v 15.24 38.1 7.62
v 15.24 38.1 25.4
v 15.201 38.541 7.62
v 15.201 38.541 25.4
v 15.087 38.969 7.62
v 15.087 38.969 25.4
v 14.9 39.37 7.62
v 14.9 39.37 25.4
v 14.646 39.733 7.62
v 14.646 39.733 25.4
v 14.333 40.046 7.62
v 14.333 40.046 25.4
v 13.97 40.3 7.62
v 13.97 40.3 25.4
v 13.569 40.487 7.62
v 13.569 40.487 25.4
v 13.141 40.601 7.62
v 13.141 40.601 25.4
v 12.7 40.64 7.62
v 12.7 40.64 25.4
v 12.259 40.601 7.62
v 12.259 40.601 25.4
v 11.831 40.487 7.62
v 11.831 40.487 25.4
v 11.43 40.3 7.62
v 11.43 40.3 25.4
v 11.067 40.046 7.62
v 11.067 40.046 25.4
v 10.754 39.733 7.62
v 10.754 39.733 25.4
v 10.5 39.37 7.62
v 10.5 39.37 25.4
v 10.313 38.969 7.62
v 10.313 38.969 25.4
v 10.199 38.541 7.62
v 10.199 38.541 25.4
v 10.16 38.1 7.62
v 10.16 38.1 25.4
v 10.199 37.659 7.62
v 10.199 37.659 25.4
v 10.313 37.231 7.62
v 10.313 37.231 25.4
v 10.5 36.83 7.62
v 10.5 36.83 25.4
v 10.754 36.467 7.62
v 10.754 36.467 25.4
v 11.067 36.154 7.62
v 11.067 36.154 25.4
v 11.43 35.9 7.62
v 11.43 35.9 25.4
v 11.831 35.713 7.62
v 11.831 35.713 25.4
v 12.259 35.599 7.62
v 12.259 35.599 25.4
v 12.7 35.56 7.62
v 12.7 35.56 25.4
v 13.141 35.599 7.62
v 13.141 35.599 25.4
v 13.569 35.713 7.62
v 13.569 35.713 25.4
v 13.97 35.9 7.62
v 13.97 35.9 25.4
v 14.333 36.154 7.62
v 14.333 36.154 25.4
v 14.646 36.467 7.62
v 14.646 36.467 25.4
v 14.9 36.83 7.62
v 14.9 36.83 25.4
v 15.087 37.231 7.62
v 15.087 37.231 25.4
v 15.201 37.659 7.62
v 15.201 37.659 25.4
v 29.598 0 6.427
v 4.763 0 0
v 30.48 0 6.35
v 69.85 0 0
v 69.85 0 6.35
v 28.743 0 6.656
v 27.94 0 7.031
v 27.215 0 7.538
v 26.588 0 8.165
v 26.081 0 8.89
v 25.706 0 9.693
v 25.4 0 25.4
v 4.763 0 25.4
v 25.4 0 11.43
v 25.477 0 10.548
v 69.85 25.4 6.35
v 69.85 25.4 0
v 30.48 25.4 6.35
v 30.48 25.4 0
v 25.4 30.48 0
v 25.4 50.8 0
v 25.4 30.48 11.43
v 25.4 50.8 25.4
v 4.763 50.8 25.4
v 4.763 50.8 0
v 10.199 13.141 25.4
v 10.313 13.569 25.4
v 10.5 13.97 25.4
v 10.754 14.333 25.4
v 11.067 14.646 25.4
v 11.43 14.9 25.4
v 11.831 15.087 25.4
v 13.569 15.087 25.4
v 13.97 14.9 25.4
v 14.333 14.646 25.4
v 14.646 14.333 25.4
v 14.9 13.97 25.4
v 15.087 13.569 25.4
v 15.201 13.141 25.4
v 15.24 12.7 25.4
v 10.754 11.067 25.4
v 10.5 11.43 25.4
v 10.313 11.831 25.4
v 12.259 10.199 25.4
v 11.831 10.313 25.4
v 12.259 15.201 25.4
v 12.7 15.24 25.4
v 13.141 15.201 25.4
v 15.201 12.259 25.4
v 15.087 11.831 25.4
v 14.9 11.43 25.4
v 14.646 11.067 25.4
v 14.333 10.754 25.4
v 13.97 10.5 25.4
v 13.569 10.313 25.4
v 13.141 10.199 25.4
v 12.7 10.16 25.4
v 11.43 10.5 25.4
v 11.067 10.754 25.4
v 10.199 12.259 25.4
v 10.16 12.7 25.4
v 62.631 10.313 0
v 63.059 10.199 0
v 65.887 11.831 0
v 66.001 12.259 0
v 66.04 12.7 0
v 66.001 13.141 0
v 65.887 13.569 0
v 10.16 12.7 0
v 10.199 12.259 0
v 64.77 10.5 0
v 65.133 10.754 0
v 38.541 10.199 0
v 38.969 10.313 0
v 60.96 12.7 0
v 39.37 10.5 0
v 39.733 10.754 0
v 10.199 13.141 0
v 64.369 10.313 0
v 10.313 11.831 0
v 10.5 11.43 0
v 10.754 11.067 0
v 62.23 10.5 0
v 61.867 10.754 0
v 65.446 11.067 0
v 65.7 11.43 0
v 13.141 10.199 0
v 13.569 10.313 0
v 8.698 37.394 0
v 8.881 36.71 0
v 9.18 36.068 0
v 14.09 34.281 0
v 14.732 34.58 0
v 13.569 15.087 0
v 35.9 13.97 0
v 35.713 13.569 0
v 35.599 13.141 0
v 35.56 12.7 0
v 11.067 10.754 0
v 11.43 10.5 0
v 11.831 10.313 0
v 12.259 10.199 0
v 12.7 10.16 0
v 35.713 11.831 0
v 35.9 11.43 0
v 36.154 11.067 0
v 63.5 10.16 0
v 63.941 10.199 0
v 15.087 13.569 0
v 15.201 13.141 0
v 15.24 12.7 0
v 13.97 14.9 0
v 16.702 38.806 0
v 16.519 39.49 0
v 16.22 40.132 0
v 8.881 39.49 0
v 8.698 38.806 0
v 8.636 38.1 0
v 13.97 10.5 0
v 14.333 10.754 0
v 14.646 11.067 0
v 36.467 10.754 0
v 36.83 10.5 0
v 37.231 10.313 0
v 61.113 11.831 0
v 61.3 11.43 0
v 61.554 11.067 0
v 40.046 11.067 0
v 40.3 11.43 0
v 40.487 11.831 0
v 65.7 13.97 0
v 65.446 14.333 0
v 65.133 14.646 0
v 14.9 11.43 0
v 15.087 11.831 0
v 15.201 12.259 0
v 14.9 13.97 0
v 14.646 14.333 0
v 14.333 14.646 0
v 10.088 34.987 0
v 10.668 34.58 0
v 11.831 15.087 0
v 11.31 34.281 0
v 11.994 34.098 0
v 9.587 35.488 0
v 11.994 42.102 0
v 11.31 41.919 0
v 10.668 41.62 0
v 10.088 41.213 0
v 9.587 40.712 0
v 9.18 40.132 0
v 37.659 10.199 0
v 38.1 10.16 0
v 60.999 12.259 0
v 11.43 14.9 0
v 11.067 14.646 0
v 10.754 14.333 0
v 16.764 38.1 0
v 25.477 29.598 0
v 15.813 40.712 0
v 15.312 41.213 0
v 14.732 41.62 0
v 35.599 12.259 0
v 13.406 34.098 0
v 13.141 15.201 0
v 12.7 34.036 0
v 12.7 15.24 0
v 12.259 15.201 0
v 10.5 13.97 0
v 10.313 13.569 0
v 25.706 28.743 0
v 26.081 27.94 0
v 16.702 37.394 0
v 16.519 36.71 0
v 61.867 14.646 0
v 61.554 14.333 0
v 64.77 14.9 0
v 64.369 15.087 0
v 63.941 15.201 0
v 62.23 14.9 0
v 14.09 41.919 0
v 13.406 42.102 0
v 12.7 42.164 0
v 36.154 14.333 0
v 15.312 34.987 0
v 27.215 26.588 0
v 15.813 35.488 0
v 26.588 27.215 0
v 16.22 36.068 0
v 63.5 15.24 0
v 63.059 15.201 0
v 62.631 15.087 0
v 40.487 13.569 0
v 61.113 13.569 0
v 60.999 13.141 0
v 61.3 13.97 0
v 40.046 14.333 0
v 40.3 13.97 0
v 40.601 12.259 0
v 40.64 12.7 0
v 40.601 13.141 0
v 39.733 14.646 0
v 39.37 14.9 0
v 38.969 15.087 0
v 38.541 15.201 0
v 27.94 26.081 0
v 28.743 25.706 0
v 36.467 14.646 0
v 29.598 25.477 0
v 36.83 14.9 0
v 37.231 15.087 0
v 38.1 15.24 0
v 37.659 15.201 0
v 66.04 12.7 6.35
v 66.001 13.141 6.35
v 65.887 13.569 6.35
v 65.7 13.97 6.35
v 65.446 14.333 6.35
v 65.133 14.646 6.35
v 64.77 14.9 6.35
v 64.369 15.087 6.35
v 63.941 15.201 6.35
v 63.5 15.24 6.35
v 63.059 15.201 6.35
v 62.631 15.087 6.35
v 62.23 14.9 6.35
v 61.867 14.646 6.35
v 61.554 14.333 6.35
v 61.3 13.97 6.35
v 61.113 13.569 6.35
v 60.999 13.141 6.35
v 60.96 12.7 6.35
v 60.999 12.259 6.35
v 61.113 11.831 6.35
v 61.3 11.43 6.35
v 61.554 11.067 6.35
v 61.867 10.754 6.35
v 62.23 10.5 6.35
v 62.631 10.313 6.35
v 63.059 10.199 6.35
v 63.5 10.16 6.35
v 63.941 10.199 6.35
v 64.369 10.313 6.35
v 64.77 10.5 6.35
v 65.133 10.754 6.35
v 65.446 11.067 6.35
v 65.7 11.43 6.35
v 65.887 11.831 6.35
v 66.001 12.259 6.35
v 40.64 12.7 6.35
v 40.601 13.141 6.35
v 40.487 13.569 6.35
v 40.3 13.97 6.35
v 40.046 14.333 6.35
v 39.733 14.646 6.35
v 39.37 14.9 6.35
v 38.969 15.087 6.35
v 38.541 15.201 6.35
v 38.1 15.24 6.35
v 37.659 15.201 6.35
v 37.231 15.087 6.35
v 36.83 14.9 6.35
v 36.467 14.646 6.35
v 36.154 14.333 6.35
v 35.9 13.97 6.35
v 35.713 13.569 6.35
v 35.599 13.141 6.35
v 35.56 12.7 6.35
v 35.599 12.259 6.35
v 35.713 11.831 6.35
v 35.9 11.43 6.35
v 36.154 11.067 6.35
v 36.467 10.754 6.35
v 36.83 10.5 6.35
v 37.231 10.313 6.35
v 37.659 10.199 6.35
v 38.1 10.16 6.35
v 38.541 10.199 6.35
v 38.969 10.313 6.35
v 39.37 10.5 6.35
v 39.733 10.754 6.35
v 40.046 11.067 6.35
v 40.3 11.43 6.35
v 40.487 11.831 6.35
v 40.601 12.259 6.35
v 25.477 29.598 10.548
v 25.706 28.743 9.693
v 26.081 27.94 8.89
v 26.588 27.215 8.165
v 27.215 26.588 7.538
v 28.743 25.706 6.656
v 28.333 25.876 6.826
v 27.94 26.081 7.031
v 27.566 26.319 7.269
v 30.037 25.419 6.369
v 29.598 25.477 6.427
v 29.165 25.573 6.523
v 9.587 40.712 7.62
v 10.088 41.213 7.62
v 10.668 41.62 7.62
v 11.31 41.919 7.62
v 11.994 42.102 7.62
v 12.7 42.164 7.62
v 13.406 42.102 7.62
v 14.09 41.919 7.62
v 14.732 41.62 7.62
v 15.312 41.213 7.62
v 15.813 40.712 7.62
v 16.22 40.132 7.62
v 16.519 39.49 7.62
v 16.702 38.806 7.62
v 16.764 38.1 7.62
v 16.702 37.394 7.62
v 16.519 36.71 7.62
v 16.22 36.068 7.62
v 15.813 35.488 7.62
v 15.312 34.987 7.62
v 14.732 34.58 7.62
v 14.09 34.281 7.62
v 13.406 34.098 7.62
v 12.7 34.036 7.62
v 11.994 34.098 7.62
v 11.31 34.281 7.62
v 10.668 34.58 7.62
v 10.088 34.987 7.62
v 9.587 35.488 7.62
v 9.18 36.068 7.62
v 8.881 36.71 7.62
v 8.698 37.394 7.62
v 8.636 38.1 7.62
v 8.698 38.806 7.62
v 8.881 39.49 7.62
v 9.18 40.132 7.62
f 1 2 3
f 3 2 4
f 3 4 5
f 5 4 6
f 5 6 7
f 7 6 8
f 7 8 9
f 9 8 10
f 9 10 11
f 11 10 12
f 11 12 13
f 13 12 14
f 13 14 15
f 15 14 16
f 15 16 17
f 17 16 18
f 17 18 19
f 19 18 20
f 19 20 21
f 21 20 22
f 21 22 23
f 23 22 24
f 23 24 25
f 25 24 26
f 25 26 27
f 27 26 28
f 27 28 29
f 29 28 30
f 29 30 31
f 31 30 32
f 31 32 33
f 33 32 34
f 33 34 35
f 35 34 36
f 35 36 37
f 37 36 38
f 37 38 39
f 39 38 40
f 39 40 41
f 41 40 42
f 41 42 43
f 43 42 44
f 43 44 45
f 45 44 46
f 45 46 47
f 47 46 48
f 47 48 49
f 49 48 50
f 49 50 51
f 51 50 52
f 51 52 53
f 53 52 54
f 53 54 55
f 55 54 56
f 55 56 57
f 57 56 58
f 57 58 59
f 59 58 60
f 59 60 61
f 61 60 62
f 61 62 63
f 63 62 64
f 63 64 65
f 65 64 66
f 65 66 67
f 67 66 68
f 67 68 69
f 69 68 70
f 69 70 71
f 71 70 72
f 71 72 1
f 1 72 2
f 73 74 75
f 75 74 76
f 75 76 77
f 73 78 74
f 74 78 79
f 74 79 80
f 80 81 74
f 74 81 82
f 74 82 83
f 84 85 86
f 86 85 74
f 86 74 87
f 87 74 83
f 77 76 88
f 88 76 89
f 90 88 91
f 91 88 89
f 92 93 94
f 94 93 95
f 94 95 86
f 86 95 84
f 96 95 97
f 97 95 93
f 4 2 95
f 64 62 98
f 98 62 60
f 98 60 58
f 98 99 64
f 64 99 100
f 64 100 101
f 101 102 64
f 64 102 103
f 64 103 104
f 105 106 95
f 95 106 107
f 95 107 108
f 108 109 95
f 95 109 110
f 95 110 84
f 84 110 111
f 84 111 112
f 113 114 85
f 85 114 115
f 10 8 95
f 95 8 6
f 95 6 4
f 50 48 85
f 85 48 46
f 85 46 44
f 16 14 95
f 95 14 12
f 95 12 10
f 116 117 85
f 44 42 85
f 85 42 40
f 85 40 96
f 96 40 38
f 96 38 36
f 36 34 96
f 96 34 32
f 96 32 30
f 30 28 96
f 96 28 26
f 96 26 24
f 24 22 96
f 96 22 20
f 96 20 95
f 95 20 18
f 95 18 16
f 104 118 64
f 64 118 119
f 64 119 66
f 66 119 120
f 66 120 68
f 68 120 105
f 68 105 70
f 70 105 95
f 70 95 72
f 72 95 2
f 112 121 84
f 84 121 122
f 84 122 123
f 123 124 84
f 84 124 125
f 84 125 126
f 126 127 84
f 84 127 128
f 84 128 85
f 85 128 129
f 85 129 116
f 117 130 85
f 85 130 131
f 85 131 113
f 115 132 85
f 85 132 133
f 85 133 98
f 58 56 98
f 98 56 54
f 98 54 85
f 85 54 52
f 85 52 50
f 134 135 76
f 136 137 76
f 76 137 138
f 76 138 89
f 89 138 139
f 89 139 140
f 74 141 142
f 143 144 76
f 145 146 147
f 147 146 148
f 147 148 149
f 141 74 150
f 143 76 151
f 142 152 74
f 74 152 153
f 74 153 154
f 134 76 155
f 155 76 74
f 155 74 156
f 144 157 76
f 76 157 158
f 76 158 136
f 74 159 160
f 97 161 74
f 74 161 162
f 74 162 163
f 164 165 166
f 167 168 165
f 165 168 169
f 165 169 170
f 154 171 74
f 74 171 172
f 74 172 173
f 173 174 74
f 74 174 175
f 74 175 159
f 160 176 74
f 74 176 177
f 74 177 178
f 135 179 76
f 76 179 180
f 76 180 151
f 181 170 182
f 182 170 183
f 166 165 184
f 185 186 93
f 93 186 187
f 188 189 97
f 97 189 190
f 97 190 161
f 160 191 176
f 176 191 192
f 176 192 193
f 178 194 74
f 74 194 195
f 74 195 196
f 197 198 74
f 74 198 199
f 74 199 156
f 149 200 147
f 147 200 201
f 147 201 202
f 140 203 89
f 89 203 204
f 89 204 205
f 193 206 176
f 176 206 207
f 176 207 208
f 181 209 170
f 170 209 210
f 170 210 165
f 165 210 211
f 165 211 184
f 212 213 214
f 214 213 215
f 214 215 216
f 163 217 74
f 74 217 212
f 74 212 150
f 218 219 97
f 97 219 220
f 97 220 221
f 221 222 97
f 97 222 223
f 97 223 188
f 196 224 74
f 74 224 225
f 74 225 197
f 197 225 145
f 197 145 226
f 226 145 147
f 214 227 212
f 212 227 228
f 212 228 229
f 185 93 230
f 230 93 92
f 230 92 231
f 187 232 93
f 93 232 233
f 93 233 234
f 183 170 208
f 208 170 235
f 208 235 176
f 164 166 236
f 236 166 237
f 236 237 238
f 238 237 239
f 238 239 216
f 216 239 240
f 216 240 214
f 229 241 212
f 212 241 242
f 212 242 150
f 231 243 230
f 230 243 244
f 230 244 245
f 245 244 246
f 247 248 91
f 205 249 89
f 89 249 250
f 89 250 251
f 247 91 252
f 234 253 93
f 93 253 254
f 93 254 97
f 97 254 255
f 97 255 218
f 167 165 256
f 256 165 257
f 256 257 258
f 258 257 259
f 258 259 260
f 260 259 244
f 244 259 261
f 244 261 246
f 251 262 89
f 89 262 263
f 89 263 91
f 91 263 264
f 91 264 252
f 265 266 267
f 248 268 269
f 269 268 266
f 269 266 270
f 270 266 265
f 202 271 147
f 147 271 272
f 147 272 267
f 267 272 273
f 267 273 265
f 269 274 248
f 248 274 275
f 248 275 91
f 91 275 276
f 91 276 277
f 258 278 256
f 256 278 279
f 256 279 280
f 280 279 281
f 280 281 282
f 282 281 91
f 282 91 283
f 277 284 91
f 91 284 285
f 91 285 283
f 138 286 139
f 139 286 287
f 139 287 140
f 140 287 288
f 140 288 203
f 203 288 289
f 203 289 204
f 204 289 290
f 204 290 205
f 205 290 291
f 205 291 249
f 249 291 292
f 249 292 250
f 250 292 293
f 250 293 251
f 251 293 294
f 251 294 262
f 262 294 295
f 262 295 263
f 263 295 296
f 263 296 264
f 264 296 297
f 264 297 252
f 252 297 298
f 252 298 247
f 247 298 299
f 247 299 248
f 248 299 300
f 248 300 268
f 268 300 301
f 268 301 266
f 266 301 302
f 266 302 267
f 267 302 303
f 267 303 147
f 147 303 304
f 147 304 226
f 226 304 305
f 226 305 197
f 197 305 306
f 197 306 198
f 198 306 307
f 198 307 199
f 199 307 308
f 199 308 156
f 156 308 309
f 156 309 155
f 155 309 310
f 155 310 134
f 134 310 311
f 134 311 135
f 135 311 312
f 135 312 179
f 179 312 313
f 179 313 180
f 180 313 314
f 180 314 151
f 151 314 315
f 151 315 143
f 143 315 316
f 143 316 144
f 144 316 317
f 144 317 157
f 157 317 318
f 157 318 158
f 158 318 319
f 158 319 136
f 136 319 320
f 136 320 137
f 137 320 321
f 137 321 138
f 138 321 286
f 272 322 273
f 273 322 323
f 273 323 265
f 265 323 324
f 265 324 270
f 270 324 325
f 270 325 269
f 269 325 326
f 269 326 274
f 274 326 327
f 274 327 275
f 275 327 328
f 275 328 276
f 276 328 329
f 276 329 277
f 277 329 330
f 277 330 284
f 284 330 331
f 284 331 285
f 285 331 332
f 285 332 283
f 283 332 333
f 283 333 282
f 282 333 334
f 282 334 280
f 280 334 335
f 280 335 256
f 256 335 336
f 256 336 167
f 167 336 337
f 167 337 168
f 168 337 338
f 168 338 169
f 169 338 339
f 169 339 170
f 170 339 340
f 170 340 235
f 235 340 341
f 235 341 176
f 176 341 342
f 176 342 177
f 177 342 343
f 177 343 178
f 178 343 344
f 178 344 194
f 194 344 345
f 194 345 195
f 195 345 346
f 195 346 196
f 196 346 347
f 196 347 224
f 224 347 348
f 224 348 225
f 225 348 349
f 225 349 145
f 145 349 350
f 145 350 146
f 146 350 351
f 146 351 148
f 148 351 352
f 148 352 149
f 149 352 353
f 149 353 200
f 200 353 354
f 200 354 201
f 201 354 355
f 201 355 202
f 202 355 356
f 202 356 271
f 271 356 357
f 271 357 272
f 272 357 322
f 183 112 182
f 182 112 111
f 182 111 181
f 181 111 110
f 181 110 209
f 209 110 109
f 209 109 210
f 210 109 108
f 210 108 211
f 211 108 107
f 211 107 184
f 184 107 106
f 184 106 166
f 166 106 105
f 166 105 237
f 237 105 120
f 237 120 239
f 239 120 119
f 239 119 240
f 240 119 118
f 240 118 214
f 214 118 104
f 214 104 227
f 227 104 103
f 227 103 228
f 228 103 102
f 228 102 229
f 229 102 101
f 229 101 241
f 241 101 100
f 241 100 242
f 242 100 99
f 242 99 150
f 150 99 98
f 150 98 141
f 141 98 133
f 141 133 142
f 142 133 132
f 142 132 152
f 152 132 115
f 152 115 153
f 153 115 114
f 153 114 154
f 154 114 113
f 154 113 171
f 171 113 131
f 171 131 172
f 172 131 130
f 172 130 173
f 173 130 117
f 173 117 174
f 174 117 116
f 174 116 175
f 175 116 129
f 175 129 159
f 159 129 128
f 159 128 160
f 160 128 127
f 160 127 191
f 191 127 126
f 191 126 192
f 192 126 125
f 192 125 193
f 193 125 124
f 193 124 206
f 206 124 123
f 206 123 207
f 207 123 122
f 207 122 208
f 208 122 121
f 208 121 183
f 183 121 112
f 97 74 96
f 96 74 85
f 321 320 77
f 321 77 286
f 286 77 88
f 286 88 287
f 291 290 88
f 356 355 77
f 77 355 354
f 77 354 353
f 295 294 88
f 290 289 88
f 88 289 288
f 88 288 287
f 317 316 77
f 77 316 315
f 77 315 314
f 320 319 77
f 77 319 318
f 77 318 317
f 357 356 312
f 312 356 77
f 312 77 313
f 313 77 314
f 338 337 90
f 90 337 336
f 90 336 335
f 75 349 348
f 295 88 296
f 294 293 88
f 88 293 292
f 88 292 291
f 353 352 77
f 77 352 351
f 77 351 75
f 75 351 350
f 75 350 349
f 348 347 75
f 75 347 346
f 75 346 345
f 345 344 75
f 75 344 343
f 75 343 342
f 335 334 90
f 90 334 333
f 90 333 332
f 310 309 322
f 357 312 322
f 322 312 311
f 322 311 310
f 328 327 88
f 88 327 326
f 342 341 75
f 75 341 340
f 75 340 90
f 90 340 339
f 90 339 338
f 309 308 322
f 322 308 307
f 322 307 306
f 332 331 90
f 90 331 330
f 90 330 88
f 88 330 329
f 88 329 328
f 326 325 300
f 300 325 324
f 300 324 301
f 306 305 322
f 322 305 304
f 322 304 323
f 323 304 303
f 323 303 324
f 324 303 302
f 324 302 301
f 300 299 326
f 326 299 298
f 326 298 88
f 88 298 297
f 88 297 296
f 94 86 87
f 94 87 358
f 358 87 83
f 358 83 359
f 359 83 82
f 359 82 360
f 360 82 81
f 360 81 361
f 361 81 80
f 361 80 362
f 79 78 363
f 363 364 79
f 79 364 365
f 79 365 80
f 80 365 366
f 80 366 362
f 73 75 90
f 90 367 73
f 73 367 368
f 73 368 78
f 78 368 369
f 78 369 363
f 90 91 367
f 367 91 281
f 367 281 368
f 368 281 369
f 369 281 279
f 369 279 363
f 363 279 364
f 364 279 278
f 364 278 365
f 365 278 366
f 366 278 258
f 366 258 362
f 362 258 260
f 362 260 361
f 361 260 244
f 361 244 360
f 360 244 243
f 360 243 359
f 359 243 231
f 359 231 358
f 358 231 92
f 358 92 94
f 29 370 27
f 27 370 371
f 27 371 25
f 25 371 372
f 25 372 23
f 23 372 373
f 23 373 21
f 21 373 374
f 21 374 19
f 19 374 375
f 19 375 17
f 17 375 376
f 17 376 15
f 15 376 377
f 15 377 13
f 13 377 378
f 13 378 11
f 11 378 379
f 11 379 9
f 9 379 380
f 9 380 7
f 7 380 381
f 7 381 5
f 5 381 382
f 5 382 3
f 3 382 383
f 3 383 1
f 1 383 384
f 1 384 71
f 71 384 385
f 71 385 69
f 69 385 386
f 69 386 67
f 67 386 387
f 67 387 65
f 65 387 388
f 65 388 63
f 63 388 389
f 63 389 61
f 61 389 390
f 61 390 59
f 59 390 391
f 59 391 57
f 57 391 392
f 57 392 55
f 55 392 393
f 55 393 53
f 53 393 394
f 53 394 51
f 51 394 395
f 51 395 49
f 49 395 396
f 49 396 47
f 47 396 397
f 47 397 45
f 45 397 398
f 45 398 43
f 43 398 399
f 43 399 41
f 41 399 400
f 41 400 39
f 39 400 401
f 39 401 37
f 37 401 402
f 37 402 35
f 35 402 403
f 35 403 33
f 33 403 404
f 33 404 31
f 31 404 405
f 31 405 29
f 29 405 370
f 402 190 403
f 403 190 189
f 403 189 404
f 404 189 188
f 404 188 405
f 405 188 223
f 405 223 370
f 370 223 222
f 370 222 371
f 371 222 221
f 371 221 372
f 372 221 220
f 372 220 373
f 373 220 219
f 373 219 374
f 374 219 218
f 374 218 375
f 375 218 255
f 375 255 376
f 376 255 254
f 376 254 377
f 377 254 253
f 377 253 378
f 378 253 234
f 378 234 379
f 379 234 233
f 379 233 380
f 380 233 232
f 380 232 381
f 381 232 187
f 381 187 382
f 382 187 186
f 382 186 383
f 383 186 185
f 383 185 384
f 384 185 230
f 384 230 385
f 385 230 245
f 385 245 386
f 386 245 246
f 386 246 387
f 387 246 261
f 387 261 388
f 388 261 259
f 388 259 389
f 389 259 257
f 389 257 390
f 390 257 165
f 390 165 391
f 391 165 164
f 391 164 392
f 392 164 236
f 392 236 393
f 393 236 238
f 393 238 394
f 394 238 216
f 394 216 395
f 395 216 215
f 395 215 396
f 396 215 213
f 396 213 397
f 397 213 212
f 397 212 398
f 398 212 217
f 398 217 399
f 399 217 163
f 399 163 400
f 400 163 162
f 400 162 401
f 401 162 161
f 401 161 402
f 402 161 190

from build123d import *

# Parameters (mm, degrees)
BOSS_EXTRUDE1_DEPTH = 25.4
SKETCH2_R           = 2.54
CUT_EXTRUDE1_DEPTH  = 91.02678768
SKETCH3_W           = 4.7625
SKETCH3_H           = 50.8
CUT_EXTRUDE2_DEPTH  = 91.02678768
SKETCH4_W           = 44.45
SKETCH4_H           = 19.05
CUT_EXTRUDE3_DEPTH  = 91.02678768
FILLET1_R           = 5.08
SKETCH6_R           = 4.064
CUT_EXTRUDE5_DEPTH  = 7.62


with BuildPart() as part:
    # Sketch1 → Boss-Extrude1 (new body)
    with BuildSketch(Plane.XY):
        Polygon((0, 0), (0, 50.8), (25.4, 50.8), (25.4, 25.4), (69.85, 25.4), (69.85, 0), align=None)
    extrude(amount=BOSS_EXTRUDE1_DEPTH)

    # Sketch2 → Cut-Extrude1 (cut, through all)
    with BuildSketch(Plane.XY.offset(25.4)):
        with Locations((12.7, 38.1)):
            Circle(SKETCH2_R)
        with Locations((12.7, 12.7)):
            Circle(SKETCH2_R)
        with Locations((38.1, 12.7)):
            Circle(SKETCH2_R)
        with Locations((63.5, 12.7)):
            Circle(SKETCH2_R)
    extrude(amount=-CUT_EXTRUDE1_DEPTH, mode=Mode.SUBTRACT)

    # Sketch3 → Cut-Extrude2 (cut, through all)
    with BuildSketch(Plane.XY.offset(25.4)):
        with Locations((2.38125, 25.4)):
            Rectangle(SKETCH3_W, SKETCH3_H)
    extrude(amount=-CUT_EXTRUDE2_DEPTH, mode=Mode.SUBTRACT)

    # Sketch4 → Cut-Extrude3 (cut, through all)
    with BuildSketch(Plane.XZ):
        with Locations((47.625, 15.875)):
            Rectangle(SKETCH4_W, SKETCH4_H)
    extrude(amount=-CUT_EXTRUDE3_DEPTH, mode=Mode.SUBTRACT)

    # Fillet1
    fillet1_edges = [part.edges().sort_by_distance(p)[0] for p in [
        (25.4, 25.4, 3.175),
        (25.4, 12.7, 6.35),
    ]]
    fillet(fillet1_edges, radius=FILLET1_R)

    # Sketch6 → Cut-Extrude5 (cut)
    with BuildSketch(Plane(origin=(0, 0, 0), x_dir=(-1, 0, 0), z_dir=(0, 0, -1))):
        with Locations((-12.7, 38.1)):
            Circle(SKETCH6_R)
    extrude(amount=-CUT_EXTRUDE5_DEPTH, mode=Mode.SUBTRACT)


solid = part.part
